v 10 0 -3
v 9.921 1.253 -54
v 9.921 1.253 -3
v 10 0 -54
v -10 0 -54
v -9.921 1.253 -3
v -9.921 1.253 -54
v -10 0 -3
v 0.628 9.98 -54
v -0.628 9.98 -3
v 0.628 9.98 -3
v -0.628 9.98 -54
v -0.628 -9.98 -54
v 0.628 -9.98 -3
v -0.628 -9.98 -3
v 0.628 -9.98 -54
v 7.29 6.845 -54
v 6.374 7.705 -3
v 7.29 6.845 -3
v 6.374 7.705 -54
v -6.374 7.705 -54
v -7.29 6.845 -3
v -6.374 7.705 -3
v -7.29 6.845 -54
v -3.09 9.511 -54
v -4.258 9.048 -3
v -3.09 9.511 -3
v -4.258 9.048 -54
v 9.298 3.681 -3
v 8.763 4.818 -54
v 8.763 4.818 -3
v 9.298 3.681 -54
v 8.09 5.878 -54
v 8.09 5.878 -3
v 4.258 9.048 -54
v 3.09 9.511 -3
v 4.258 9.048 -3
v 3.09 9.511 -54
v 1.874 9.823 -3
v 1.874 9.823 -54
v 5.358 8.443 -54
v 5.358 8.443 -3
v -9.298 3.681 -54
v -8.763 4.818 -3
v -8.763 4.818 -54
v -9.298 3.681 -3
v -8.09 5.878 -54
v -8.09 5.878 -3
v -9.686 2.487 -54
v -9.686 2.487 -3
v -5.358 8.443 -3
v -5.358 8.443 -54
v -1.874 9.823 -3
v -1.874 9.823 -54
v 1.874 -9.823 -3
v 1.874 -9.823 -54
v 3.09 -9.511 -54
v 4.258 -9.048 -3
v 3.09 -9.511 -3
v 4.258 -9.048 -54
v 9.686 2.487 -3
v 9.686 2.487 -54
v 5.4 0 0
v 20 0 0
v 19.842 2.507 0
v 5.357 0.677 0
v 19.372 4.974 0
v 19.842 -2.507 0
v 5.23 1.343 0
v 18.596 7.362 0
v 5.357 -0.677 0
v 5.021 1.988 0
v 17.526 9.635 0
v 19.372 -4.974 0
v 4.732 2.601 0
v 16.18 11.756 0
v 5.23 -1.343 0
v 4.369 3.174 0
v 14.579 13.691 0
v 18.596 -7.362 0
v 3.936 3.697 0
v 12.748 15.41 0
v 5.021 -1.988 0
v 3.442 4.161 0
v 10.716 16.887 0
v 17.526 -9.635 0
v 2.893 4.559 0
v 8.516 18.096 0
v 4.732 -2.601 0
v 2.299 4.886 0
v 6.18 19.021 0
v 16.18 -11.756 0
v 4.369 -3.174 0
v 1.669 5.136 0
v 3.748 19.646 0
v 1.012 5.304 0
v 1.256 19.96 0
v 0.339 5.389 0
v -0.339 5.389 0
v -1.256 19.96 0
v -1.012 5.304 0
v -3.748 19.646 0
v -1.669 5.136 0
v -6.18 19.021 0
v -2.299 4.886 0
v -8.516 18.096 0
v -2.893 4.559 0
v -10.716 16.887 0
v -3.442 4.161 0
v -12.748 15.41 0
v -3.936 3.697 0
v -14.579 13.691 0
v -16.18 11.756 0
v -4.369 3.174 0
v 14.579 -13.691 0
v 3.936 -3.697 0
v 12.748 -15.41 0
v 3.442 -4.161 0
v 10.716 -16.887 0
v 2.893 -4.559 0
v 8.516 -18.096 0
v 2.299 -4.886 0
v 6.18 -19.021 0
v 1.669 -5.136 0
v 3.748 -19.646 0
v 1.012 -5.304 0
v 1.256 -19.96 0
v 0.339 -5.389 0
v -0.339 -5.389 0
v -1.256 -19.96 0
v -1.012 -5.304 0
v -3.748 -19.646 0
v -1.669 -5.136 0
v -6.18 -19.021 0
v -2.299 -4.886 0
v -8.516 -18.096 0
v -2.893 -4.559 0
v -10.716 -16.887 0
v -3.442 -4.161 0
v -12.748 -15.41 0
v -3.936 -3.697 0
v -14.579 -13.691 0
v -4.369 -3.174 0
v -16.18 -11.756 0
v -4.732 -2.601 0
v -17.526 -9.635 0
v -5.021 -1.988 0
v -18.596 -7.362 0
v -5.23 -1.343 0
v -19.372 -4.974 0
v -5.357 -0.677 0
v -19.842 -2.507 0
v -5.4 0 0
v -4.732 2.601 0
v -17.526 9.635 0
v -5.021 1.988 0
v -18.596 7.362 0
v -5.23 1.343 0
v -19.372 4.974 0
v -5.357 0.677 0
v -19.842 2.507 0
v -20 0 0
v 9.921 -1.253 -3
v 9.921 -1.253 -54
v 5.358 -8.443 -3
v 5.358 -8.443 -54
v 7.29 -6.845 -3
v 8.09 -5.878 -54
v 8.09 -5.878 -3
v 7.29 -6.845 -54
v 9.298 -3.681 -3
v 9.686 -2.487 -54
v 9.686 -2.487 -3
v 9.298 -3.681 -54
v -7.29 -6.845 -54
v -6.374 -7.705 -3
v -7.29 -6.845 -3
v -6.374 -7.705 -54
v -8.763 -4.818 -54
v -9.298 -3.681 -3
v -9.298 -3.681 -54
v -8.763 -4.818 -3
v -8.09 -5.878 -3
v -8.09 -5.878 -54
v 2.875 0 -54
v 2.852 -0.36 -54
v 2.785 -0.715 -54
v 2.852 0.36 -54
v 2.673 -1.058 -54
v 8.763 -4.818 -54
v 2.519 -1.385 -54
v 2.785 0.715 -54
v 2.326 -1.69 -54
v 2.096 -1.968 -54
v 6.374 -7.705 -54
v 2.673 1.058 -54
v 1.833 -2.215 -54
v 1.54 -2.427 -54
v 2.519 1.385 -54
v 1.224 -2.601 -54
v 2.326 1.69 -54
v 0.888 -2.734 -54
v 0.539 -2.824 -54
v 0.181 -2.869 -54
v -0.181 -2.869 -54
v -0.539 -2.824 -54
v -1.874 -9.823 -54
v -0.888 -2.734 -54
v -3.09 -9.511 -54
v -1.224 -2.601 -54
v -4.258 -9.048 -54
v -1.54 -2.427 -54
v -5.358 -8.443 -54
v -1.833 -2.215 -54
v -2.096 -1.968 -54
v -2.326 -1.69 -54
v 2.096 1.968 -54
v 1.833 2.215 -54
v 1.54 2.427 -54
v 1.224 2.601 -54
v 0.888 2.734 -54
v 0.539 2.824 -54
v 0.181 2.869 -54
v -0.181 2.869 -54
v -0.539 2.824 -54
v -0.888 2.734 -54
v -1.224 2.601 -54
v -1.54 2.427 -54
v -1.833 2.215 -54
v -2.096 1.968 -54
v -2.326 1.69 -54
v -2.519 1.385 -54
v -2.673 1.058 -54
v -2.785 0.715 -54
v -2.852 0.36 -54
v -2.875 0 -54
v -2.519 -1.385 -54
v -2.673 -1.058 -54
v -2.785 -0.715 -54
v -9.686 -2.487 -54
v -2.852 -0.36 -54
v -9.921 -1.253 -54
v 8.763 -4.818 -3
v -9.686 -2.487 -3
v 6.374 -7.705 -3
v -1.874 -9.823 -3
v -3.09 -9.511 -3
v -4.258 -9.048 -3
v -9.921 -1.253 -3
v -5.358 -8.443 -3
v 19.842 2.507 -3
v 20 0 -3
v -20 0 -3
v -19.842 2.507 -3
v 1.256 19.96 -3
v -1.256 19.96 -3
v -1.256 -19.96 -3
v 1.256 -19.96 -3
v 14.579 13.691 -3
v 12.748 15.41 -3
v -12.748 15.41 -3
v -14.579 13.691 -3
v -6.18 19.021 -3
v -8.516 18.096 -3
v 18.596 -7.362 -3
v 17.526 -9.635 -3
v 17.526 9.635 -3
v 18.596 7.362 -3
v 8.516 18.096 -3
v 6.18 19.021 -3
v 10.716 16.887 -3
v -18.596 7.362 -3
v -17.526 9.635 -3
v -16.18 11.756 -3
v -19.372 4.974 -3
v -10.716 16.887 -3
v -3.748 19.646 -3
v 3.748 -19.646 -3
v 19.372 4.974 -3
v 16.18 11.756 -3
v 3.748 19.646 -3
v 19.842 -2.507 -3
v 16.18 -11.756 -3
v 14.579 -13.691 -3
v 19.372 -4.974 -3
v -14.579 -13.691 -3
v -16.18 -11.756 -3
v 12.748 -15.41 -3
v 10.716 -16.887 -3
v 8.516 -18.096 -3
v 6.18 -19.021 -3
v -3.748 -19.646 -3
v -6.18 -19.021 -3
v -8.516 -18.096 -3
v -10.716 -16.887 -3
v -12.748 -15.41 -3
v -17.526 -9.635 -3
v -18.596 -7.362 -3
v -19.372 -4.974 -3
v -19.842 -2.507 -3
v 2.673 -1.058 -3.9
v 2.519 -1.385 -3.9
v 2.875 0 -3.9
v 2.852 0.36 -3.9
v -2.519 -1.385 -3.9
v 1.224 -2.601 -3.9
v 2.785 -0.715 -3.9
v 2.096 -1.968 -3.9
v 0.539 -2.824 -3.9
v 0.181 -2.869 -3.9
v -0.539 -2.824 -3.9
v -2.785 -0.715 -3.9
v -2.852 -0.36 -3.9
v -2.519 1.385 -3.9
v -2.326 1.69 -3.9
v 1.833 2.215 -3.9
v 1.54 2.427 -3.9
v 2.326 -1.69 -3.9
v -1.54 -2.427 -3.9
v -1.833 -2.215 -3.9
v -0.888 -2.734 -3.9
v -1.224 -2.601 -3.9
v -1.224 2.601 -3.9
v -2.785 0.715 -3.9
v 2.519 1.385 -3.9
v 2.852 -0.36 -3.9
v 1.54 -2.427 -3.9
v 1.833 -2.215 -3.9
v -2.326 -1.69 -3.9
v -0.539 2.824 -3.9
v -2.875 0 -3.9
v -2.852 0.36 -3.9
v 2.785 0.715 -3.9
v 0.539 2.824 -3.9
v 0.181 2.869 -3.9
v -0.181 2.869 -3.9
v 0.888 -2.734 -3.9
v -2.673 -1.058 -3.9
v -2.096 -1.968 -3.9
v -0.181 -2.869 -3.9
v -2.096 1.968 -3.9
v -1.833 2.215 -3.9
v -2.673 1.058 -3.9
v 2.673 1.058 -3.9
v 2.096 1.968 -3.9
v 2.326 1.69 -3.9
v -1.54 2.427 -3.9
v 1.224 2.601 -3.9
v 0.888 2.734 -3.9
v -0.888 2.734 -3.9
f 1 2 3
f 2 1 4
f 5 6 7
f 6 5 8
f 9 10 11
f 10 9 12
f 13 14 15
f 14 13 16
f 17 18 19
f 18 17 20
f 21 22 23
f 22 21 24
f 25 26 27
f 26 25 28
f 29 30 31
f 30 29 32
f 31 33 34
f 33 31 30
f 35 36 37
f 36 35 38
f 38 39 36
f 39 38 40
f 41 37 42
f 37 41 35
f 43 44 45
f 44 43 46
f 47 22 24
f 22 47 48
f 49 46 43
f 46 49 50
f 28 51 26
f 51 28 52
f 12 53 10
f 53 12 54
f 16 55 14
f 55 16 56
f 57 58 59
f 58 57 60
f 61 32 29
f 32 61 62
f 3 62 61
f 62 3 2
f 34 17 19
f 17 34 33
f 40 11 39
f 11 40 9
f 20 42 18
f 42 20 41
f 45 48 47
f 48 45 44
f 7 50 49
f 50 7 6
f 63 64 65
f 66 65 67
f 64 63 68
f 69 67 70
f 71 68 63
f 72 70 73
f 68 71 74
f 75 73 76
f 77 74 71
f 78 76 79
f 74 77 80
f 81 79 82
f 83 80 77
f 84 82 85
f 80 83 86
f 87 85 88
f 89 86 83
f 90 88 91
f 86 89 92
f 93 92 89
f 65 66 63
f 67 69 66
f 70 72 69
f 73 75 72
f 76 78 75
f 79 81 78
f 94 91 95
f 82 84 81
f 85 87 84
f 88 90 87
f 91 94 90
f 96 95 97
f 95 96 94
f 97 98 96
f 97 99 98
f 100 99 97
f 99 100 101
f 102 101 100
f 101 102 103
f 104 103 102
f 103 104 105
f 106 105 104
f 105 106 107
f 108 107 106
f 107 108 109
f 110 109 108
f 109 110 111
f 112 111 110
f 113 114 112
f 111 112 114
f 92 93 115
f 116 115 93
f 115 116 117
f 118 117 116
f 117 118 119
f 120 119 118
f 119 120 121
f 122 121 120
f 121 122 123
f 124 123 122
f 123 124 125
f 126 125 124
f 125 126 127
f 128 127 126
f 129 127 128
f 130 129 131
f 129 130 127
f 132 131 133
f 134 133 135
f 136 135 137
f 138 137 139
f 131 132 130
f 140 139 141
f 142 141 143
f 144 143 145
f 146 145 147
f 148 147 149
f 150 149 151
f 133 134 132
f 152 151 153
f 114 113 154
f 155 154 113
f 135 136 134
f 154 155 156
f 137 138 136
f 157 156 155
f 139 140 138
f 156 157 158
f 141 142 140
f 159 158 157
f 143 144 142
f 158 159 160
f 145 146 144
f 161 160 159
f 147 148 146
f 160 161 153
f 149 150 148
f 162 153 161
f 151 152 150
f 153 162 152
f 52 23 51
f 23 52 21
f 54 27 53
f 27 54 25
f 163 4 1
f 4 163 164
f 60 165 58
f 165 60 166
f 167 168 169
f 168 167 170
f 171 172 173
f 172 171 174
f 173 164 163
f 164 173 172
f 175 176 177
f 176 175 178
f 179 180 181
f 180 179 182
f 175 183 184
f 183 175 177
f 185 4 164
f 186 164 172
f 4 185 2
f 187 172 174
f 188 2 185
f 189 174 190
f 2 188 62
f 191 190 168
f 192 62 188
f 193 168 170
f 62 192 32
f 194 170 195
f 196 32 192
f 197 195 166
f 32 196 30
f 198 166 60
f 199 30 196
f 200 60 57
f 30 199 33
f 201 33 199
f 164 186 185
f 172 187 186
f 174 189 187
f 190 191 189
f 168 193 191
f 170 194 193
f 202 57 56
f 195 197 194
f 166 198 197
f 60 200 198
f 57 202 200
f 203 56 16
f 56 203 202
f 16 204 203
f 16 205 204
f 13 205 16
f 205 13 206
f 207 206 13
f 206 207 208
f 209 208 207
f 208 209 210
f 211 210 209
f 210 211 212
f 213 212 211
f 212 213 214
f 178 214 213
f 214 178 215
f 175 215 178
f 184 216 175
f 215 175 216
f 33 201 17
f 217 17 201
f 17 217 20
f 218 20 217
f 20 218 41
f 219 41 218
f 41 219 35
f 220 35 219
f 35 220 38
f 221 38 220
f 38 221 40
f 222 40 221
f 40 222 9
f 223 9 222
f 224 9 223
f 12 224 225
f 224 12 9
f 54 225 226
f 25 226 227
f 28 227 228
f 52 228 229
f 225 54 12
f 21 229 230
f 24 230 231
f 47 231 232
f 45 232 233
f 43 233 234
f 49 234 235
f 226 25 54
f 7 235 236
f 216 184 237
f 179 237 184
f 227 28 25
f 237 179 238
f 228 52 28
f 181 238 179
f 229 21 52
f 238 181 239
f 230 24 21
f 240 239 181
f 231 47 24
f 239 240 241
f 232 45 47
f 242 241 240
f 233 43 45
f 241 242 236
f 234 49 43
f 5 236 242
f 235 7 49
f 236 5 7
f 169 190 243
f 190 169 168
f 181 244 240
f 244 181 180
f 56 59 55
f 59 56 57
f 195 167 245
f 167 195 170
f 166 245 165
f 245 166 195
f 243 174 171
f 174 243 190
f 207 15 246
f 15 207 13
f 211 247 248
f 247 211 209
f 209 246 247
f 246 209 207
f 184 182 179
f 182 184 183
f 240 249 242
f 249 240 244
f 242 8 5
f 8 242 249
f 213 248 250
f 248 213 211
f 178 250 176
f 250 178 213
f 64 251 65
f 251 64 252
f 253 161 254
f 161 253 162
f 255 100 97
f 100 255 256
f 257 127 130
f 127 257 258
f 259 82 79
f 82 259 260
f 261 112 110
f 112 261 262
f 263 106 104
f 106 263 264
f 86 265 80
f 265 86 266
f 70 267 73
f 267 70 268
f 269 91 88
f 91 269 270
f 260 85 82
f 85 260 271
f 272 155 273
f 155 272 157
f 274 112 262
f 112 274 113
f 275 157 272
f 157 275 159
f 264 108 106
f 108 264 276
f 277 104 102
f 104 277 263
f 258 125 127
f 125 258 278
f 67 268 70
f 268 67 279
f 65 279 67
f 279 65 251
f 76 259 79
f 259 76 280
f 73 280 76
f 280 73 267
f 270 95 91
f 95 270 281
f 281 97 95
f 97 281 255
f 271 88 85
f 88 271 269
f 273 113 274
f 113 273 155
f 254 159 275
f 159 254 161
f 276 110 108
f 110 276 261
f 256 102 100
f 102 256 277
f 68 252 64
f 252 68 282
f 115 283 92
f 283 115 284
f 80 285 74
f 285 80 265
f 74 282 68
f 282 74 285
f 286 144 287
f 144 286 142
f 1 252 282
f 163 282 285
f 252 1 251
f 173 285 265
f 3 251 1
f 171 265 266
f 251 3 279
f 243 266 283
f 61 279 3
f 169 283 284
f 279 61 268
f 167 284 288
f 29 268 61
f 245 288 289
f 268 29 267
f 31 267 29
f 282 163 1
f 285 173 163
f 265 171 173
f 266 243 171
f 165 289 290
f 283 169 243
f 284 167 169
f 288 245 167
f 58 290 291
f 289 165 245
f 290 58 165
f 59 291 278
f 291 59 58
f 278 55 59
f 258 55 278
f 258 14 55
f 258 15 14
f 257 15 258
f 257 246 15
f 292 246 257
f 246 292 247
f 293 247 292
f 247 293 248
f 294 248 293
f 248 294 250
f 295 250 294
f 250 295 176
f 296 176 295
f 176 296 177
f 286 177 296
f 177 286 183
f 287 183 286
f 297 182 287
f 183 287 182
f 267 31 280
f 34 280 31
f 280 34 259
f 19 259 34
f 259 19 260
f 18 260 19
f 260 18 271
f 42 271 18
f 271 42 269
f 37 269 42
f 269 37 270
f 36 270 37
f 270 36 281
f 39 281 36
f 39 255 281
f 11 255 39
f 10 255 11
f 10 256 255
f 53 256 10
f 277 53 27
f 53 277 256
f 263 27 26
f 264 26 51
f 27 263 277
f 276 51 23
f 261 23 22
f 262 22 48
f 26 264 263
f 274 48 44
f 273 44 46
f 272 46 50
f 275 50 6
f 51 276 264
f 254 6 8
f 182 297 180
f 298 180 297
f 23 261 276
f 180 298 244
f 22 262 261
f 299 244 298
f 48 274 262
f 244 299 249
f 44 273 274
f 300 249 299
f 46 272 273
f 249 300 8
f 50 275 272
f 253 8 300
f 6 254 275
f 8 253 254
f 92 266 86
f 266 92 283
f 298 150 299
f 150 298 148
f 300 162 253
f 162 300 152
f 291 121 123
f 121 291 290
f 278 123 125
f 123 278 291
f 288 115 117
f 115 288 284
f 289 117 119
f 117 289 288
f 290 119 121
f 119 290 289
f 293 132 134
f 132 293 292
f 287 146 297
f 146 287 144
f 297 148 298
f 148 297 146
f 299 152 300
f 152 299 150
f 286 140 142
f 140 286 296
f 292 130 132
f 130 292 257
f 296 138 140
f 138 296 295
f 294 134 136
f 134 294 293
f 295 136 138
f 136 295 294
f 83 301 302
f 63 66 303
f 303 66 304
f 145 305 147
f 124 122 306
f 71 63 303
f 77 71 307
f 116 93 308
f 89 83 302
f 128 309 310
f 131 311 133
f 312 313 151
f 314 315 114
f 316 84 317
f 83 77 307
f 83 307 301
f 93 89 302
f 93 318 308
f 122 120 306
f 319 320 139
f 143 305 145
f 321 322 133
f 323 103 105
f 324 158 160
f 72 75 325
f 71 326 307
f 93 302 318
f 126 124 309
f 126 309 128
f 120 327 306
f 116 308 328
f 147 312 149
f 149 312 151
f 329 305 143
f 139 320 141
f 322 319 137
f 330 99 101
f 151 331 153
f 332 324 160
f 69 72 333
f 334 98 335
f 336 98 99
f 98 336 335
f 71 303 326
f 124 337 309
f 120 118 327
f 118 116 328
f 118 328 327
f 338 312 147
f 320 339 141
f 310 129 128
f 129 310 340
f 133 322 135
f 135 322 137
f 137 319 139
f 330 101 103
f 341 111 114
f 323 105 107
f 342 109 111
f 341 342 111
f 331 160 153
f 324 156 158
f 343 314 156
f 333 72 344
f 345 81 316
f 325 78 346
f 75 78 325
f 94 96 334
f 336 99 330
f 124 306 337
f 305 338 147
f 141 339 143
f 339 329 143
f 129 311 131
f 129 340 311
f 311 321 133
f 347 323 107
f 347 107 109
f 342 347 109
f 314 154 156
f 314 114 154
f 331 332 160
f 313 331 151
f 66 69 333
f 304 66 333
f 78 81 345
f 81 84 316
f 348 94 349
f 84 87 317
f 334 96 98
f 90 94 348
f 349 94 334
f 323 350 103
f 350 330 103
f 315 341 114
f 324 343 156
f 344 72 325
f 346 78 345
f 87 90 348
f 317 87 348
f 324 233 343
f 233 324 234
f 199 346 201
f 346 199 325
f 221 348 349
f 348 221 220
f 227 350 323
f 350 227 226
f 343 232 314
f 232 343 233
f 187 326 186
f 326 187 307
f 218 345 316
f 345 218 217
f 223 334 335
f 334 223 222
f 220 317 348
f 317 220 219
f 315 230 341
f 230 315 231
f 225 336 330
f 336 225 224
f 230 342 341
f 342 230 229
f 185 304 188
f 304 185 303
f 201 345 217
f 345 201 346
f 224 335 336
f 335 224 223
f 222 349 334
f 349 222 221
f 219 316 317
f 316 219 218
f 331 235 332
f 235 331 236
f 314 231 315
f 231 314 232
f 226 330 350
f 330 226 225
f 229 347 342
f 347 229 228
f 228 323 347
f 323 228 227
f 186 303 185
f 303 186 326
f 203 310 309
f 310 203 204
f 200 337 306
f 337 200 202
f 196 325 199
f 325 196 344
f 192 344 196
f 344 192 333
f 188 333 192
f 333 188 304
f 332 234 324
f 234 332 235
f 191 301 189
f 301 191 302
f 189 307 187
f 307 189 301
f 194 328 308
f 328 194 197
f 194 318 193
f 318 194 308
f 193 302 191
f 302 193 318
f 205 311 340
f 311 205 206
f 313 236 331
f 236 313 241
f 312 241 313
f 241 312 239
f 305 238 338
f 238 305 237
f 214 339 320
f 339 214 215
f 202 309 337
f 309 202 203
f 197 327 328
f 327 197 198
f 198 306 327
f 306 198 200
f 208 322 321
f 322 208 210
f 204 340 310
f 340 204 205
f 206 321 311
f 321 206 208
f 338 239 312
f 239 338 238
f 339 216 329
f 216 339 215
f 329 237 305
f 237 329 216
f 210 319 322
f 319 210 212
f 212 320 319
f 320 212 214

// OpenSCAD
$fn = 50;


difference() {
	union() {
		translate(v = [0, 0, -54.0000000000]) {
			cylinder(h = 54, r = 10.0000000000);
		}
		translate(v = [0, 0, -3.0000000000]) {
			cylinder(h = 3, r = 20.0000000000);
		}
	}
	union() {
		translate(v = [0, 0, 0]) {
			rotate(a = [0, 0, 0]) {
				difference() {
					union() {
						#translate(v = [0, 0, -54.0000000000]) {
							cylinder(h = 54, r = 2.6000000000);
						}
						#translate(v = [0, 0, -3.9000000000]) {
							cylinder(h = 3.9000000000, r = 10.0000000000, r1 = 2.8750000000, r2 = 5.4000000000);
						}
						#translate(v = [0, 0, -54.0000000000]) {
							cylinder(h = 54, r = 2.8750000000);
						}
						#translate(v = [0, 0, -54.0000000000]) {
							cylinder(h = 54, r = 2.6000000000);
						}
					}
					union();
				}
			}
		}
	}
}
